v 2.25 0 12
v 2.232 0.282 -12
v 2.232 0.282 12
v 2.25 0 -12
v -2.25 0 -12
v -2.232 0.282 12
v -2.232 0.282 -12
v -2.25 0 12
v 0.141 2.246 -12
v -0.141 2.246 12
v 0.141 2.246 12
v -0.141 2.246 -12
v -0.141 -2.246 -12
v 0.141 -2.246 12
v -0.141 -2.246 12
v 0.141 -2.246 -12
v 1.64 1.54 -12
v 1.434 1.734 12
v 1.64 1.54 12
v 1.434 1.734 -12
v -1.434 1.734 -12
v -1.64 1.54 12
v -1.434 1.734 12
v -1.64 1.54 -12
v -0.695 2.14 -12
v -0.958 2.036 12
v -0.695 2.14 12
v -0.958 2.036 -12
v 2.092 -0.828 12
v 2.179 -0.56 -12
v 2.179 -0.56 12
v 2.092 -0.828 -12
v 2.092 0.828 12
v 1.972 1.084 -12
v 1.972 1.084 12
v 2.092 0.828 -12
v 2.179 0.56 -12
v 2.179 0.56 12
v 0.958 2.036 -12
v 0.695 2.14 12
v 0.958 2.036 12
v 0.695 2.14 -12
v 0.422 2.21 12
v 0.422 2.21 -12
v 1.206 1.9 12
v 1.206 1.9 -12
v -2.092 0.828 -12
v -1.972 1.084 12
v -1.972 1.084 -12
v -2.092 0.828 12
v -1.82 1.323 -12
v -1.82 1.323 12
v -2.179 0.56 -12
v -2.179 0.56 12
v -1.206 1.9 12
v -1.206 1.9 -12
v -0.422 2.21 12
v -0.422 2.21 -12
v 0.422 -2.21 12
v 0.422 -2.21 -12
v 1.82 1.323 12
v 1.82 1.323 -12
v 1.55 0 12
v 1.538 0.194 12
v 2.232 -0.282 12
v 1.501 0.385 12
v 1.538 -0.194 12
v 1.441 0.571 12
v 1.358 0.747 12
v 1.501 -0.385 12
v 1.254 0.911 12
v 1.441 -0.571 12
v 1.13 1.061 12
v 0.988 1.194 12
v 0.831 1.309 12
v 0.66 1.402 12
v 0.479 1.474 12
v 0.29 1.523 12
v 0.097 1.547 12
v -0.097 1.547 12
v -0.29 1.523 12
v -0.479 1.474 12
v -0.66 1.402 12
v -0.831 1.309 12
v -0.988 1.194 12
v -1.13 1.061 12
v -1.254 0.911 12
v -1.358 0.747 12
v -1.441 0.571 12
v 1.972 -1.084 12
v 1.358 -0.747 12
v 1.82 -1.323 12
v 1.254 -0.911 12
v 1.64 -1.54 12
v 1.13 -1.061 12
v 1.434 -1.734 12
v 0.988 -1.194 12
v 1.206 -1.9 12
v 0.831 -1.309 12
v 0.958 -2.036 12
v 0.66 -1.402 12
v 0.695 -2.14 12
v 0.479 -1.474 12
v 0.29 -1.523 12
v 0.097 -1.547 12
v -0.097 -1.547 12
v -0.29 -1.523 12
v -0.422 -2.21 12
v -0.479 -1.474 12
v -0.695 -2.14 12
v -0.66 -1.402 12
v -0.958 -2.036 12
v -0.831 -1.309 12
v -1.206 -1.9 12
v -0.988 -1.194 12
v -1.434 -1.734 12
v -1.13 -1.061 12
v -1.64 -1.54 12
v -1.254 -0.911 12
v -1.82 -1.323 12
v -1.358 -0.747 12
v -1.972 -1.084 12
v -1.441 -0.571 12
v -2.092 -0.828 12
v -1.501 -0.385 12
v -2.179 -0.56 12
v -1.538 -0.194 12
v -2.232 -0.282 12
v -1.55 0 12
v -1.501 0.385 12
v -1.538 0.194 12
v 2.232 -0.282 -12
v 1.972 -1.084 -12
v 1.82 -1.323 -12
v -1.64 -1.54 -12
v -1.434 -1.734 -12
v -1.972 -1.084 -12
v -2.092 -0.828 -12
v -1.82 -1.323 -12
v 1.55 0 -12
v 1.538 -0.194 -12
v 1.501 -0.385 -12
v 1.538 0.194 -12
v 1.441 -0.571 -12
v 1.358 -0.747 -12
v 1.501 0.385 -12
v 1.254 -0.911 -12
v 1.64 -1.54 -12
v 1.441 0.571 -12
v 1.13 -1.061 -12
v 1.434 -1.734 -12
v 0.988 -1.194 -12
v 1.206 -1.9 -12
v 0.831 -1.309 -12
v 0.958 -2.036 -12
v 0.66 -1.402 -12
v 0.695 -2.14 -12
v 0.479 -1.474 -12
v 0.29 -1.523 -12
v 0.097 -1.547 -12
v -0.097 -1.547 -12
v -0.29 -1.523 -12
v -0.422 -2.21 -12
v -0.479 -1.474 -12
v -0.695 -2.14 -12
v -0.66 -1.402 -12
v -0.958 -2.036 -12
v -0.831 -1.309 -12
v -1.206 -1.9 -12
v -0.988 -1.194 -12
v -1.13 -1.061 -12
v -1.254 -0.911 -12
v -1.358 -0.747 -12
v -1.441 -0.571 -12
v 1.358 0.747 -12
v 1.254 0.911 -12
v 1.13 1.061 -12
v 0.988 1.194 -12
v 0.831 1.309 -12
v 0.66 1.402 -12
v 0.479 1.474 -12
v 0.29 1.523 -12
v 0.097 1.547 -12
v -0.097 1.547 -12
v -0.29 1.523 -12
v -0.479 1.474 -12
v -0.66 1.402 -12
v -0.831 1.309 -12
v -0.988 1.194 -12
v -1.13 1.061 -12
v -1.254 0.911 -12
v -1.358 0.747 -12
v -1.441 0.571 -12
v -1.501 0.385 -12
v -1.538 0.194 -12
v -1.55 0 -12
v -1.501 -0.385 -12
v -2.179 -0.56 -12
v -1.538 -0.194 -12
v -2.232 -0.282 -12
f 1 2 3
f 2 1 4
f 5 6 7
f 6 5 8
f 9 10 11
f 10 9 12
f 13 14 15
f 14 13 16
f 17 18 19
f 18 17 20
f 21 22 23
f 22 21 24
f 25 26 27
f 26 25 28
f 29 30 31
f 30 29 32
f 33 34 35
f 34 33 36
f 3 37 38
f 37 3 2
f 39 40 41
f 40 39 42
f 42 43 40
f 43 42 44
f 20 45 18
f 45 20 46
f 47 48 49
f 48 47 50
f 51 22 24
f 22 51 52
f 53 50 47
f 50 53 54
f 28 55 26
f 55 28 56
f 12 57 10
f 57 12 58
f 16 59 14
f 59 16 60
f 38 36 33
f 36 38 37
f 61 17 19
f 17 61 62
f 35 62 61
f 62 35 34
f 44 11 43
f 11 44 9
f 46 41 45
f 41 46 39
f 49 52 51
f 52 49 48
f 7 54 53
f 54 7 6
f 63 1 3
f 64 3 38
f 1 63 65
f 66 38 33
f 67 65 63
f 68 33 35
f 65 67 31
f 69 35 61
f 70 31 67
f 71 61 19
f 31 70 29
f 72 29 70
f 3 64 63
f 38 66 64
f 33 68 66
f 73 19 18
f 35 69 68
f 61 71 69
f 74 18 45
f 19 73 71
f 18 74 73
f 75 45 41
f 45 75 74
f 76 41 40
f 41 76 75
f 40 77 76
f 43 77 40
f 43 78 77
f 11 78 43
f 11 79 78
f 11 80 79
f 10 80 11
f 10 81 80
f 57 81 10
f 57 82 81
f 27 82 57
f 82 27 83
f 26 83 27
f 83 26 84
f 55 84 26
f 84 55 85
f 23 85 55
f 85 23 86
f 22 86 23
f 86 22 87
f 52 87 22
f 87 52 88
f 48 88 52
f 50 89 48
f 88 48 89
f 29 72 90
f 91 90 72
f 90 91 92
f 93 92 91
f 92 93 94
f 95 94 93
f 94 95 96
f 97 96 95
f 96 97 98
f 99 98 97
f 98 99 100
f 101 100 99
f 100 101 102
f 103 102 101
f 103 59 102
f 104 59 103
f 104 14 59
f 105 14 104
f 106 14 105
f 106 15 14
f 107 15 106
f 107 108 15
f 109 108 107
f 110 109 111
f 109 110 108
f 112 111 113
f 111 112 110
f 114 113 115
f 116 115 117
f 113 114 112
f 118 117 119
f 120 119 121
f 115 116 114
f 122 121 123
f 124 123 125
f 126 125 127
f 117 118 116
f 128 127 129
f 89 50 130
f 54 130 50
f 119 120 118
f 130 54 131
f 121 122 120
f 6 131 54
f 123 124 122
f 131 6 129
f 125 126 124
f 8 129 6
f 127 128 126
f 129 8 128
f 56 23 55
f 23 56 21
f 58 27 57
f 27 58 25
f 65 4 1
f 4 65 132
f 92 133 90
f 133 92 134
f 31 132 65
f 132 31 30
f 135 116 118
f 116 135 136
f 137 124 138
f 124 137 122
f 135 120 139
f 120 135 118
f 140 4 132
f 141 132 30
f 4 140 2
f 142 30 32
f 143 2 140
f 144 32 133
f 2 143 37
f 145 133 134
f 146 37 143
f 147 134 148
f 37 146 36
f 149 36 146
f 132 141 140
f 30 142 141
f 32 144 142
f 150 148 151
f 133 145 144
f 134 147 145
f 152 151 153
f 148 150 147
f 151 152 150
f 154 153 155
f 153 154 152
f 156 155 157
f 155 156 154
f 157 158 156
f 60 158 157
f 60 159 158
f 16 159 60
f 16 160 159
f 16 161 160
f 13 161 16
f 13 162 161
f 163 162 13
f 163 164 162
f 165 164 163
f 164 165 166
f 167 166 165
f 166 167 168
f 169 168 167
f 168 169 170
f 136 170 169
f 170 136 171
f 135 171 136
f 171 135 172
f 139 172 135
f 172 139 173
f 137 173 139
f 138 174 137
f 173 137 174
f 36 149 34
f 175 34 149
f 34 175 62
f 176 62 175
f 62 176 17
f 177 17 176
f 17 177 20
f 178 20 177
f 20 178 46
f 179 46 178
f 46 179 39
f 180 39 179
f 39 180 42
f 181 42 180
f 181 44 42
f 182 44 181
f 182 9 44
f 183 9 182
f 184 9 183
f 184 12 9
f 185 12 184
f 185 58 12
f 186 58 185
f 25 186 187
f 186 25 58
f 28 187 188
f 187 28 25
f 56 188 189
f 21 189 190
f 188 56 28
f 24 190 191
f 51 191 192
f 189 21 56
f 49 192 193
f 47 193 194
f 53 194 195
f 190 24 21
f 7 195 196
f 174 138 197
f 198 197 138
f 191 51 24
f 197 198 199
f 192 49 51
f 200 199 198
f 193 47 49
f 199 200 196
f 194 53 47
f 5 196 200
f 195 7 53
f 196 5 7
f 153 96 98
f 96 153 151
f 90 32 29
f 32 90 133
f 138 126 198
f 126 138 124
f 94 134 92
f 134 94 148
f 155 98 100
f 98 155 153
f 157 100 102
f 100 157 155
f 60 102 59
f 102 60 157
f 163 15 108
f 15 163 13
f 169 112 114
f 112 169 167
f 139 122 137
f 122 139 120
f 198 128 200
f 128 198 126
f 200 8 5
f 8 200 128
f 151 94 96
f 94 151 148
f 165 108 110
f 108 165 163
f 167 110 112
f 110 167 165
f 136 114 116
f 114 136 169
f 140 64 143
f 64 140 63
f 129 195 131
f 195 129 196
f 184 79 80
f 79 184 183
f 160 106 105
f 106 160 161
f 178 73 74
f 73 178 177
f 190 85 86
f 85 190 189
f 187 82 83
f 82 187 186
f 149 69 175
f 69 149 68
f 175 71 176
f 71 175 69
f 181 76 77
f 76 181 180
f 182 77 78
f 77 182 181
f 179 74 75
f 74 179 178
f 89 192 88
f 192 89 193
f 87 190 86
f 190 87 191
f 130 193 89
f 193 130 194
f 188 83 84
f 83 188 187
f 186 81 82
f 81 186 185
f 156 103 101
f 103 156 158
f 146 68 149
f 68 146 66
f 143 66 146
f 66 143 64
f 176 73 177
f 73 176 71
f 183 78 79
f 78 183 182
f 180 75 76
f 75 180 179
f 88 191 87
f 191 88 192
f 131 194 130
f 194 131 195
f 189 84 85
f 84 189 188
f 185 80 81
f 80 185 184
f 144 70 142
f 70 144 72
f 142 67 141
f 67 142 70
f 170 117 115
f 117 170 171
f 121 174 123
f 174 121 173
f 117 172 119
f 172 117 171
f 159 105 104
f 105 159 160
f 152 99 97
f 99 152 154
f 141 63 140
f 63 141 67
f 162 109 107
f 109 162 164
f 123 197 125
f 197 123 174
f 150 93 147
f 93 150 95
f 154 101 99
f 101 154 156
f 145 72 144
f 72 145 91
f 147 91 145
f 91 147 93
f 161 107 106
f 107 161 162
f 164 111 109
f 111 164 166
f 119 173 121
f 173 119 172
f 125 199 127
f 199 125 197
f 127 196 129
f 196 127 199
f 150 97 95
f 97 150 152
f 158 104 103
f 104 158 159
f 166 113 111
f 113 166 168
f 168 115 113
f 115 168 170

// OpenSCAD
$fn = 50;


difference() {
	union() {
		translate(v = [0, 0, -12.0000000000]) {
			cylinder(h = 24, r = 2.2500000000);
		}
	}
	union() {
		translate(v = [0, 0, -100.0000000000]) {
			cylinder(h = 200, r = 1.5500000000);
		}
	}
}
